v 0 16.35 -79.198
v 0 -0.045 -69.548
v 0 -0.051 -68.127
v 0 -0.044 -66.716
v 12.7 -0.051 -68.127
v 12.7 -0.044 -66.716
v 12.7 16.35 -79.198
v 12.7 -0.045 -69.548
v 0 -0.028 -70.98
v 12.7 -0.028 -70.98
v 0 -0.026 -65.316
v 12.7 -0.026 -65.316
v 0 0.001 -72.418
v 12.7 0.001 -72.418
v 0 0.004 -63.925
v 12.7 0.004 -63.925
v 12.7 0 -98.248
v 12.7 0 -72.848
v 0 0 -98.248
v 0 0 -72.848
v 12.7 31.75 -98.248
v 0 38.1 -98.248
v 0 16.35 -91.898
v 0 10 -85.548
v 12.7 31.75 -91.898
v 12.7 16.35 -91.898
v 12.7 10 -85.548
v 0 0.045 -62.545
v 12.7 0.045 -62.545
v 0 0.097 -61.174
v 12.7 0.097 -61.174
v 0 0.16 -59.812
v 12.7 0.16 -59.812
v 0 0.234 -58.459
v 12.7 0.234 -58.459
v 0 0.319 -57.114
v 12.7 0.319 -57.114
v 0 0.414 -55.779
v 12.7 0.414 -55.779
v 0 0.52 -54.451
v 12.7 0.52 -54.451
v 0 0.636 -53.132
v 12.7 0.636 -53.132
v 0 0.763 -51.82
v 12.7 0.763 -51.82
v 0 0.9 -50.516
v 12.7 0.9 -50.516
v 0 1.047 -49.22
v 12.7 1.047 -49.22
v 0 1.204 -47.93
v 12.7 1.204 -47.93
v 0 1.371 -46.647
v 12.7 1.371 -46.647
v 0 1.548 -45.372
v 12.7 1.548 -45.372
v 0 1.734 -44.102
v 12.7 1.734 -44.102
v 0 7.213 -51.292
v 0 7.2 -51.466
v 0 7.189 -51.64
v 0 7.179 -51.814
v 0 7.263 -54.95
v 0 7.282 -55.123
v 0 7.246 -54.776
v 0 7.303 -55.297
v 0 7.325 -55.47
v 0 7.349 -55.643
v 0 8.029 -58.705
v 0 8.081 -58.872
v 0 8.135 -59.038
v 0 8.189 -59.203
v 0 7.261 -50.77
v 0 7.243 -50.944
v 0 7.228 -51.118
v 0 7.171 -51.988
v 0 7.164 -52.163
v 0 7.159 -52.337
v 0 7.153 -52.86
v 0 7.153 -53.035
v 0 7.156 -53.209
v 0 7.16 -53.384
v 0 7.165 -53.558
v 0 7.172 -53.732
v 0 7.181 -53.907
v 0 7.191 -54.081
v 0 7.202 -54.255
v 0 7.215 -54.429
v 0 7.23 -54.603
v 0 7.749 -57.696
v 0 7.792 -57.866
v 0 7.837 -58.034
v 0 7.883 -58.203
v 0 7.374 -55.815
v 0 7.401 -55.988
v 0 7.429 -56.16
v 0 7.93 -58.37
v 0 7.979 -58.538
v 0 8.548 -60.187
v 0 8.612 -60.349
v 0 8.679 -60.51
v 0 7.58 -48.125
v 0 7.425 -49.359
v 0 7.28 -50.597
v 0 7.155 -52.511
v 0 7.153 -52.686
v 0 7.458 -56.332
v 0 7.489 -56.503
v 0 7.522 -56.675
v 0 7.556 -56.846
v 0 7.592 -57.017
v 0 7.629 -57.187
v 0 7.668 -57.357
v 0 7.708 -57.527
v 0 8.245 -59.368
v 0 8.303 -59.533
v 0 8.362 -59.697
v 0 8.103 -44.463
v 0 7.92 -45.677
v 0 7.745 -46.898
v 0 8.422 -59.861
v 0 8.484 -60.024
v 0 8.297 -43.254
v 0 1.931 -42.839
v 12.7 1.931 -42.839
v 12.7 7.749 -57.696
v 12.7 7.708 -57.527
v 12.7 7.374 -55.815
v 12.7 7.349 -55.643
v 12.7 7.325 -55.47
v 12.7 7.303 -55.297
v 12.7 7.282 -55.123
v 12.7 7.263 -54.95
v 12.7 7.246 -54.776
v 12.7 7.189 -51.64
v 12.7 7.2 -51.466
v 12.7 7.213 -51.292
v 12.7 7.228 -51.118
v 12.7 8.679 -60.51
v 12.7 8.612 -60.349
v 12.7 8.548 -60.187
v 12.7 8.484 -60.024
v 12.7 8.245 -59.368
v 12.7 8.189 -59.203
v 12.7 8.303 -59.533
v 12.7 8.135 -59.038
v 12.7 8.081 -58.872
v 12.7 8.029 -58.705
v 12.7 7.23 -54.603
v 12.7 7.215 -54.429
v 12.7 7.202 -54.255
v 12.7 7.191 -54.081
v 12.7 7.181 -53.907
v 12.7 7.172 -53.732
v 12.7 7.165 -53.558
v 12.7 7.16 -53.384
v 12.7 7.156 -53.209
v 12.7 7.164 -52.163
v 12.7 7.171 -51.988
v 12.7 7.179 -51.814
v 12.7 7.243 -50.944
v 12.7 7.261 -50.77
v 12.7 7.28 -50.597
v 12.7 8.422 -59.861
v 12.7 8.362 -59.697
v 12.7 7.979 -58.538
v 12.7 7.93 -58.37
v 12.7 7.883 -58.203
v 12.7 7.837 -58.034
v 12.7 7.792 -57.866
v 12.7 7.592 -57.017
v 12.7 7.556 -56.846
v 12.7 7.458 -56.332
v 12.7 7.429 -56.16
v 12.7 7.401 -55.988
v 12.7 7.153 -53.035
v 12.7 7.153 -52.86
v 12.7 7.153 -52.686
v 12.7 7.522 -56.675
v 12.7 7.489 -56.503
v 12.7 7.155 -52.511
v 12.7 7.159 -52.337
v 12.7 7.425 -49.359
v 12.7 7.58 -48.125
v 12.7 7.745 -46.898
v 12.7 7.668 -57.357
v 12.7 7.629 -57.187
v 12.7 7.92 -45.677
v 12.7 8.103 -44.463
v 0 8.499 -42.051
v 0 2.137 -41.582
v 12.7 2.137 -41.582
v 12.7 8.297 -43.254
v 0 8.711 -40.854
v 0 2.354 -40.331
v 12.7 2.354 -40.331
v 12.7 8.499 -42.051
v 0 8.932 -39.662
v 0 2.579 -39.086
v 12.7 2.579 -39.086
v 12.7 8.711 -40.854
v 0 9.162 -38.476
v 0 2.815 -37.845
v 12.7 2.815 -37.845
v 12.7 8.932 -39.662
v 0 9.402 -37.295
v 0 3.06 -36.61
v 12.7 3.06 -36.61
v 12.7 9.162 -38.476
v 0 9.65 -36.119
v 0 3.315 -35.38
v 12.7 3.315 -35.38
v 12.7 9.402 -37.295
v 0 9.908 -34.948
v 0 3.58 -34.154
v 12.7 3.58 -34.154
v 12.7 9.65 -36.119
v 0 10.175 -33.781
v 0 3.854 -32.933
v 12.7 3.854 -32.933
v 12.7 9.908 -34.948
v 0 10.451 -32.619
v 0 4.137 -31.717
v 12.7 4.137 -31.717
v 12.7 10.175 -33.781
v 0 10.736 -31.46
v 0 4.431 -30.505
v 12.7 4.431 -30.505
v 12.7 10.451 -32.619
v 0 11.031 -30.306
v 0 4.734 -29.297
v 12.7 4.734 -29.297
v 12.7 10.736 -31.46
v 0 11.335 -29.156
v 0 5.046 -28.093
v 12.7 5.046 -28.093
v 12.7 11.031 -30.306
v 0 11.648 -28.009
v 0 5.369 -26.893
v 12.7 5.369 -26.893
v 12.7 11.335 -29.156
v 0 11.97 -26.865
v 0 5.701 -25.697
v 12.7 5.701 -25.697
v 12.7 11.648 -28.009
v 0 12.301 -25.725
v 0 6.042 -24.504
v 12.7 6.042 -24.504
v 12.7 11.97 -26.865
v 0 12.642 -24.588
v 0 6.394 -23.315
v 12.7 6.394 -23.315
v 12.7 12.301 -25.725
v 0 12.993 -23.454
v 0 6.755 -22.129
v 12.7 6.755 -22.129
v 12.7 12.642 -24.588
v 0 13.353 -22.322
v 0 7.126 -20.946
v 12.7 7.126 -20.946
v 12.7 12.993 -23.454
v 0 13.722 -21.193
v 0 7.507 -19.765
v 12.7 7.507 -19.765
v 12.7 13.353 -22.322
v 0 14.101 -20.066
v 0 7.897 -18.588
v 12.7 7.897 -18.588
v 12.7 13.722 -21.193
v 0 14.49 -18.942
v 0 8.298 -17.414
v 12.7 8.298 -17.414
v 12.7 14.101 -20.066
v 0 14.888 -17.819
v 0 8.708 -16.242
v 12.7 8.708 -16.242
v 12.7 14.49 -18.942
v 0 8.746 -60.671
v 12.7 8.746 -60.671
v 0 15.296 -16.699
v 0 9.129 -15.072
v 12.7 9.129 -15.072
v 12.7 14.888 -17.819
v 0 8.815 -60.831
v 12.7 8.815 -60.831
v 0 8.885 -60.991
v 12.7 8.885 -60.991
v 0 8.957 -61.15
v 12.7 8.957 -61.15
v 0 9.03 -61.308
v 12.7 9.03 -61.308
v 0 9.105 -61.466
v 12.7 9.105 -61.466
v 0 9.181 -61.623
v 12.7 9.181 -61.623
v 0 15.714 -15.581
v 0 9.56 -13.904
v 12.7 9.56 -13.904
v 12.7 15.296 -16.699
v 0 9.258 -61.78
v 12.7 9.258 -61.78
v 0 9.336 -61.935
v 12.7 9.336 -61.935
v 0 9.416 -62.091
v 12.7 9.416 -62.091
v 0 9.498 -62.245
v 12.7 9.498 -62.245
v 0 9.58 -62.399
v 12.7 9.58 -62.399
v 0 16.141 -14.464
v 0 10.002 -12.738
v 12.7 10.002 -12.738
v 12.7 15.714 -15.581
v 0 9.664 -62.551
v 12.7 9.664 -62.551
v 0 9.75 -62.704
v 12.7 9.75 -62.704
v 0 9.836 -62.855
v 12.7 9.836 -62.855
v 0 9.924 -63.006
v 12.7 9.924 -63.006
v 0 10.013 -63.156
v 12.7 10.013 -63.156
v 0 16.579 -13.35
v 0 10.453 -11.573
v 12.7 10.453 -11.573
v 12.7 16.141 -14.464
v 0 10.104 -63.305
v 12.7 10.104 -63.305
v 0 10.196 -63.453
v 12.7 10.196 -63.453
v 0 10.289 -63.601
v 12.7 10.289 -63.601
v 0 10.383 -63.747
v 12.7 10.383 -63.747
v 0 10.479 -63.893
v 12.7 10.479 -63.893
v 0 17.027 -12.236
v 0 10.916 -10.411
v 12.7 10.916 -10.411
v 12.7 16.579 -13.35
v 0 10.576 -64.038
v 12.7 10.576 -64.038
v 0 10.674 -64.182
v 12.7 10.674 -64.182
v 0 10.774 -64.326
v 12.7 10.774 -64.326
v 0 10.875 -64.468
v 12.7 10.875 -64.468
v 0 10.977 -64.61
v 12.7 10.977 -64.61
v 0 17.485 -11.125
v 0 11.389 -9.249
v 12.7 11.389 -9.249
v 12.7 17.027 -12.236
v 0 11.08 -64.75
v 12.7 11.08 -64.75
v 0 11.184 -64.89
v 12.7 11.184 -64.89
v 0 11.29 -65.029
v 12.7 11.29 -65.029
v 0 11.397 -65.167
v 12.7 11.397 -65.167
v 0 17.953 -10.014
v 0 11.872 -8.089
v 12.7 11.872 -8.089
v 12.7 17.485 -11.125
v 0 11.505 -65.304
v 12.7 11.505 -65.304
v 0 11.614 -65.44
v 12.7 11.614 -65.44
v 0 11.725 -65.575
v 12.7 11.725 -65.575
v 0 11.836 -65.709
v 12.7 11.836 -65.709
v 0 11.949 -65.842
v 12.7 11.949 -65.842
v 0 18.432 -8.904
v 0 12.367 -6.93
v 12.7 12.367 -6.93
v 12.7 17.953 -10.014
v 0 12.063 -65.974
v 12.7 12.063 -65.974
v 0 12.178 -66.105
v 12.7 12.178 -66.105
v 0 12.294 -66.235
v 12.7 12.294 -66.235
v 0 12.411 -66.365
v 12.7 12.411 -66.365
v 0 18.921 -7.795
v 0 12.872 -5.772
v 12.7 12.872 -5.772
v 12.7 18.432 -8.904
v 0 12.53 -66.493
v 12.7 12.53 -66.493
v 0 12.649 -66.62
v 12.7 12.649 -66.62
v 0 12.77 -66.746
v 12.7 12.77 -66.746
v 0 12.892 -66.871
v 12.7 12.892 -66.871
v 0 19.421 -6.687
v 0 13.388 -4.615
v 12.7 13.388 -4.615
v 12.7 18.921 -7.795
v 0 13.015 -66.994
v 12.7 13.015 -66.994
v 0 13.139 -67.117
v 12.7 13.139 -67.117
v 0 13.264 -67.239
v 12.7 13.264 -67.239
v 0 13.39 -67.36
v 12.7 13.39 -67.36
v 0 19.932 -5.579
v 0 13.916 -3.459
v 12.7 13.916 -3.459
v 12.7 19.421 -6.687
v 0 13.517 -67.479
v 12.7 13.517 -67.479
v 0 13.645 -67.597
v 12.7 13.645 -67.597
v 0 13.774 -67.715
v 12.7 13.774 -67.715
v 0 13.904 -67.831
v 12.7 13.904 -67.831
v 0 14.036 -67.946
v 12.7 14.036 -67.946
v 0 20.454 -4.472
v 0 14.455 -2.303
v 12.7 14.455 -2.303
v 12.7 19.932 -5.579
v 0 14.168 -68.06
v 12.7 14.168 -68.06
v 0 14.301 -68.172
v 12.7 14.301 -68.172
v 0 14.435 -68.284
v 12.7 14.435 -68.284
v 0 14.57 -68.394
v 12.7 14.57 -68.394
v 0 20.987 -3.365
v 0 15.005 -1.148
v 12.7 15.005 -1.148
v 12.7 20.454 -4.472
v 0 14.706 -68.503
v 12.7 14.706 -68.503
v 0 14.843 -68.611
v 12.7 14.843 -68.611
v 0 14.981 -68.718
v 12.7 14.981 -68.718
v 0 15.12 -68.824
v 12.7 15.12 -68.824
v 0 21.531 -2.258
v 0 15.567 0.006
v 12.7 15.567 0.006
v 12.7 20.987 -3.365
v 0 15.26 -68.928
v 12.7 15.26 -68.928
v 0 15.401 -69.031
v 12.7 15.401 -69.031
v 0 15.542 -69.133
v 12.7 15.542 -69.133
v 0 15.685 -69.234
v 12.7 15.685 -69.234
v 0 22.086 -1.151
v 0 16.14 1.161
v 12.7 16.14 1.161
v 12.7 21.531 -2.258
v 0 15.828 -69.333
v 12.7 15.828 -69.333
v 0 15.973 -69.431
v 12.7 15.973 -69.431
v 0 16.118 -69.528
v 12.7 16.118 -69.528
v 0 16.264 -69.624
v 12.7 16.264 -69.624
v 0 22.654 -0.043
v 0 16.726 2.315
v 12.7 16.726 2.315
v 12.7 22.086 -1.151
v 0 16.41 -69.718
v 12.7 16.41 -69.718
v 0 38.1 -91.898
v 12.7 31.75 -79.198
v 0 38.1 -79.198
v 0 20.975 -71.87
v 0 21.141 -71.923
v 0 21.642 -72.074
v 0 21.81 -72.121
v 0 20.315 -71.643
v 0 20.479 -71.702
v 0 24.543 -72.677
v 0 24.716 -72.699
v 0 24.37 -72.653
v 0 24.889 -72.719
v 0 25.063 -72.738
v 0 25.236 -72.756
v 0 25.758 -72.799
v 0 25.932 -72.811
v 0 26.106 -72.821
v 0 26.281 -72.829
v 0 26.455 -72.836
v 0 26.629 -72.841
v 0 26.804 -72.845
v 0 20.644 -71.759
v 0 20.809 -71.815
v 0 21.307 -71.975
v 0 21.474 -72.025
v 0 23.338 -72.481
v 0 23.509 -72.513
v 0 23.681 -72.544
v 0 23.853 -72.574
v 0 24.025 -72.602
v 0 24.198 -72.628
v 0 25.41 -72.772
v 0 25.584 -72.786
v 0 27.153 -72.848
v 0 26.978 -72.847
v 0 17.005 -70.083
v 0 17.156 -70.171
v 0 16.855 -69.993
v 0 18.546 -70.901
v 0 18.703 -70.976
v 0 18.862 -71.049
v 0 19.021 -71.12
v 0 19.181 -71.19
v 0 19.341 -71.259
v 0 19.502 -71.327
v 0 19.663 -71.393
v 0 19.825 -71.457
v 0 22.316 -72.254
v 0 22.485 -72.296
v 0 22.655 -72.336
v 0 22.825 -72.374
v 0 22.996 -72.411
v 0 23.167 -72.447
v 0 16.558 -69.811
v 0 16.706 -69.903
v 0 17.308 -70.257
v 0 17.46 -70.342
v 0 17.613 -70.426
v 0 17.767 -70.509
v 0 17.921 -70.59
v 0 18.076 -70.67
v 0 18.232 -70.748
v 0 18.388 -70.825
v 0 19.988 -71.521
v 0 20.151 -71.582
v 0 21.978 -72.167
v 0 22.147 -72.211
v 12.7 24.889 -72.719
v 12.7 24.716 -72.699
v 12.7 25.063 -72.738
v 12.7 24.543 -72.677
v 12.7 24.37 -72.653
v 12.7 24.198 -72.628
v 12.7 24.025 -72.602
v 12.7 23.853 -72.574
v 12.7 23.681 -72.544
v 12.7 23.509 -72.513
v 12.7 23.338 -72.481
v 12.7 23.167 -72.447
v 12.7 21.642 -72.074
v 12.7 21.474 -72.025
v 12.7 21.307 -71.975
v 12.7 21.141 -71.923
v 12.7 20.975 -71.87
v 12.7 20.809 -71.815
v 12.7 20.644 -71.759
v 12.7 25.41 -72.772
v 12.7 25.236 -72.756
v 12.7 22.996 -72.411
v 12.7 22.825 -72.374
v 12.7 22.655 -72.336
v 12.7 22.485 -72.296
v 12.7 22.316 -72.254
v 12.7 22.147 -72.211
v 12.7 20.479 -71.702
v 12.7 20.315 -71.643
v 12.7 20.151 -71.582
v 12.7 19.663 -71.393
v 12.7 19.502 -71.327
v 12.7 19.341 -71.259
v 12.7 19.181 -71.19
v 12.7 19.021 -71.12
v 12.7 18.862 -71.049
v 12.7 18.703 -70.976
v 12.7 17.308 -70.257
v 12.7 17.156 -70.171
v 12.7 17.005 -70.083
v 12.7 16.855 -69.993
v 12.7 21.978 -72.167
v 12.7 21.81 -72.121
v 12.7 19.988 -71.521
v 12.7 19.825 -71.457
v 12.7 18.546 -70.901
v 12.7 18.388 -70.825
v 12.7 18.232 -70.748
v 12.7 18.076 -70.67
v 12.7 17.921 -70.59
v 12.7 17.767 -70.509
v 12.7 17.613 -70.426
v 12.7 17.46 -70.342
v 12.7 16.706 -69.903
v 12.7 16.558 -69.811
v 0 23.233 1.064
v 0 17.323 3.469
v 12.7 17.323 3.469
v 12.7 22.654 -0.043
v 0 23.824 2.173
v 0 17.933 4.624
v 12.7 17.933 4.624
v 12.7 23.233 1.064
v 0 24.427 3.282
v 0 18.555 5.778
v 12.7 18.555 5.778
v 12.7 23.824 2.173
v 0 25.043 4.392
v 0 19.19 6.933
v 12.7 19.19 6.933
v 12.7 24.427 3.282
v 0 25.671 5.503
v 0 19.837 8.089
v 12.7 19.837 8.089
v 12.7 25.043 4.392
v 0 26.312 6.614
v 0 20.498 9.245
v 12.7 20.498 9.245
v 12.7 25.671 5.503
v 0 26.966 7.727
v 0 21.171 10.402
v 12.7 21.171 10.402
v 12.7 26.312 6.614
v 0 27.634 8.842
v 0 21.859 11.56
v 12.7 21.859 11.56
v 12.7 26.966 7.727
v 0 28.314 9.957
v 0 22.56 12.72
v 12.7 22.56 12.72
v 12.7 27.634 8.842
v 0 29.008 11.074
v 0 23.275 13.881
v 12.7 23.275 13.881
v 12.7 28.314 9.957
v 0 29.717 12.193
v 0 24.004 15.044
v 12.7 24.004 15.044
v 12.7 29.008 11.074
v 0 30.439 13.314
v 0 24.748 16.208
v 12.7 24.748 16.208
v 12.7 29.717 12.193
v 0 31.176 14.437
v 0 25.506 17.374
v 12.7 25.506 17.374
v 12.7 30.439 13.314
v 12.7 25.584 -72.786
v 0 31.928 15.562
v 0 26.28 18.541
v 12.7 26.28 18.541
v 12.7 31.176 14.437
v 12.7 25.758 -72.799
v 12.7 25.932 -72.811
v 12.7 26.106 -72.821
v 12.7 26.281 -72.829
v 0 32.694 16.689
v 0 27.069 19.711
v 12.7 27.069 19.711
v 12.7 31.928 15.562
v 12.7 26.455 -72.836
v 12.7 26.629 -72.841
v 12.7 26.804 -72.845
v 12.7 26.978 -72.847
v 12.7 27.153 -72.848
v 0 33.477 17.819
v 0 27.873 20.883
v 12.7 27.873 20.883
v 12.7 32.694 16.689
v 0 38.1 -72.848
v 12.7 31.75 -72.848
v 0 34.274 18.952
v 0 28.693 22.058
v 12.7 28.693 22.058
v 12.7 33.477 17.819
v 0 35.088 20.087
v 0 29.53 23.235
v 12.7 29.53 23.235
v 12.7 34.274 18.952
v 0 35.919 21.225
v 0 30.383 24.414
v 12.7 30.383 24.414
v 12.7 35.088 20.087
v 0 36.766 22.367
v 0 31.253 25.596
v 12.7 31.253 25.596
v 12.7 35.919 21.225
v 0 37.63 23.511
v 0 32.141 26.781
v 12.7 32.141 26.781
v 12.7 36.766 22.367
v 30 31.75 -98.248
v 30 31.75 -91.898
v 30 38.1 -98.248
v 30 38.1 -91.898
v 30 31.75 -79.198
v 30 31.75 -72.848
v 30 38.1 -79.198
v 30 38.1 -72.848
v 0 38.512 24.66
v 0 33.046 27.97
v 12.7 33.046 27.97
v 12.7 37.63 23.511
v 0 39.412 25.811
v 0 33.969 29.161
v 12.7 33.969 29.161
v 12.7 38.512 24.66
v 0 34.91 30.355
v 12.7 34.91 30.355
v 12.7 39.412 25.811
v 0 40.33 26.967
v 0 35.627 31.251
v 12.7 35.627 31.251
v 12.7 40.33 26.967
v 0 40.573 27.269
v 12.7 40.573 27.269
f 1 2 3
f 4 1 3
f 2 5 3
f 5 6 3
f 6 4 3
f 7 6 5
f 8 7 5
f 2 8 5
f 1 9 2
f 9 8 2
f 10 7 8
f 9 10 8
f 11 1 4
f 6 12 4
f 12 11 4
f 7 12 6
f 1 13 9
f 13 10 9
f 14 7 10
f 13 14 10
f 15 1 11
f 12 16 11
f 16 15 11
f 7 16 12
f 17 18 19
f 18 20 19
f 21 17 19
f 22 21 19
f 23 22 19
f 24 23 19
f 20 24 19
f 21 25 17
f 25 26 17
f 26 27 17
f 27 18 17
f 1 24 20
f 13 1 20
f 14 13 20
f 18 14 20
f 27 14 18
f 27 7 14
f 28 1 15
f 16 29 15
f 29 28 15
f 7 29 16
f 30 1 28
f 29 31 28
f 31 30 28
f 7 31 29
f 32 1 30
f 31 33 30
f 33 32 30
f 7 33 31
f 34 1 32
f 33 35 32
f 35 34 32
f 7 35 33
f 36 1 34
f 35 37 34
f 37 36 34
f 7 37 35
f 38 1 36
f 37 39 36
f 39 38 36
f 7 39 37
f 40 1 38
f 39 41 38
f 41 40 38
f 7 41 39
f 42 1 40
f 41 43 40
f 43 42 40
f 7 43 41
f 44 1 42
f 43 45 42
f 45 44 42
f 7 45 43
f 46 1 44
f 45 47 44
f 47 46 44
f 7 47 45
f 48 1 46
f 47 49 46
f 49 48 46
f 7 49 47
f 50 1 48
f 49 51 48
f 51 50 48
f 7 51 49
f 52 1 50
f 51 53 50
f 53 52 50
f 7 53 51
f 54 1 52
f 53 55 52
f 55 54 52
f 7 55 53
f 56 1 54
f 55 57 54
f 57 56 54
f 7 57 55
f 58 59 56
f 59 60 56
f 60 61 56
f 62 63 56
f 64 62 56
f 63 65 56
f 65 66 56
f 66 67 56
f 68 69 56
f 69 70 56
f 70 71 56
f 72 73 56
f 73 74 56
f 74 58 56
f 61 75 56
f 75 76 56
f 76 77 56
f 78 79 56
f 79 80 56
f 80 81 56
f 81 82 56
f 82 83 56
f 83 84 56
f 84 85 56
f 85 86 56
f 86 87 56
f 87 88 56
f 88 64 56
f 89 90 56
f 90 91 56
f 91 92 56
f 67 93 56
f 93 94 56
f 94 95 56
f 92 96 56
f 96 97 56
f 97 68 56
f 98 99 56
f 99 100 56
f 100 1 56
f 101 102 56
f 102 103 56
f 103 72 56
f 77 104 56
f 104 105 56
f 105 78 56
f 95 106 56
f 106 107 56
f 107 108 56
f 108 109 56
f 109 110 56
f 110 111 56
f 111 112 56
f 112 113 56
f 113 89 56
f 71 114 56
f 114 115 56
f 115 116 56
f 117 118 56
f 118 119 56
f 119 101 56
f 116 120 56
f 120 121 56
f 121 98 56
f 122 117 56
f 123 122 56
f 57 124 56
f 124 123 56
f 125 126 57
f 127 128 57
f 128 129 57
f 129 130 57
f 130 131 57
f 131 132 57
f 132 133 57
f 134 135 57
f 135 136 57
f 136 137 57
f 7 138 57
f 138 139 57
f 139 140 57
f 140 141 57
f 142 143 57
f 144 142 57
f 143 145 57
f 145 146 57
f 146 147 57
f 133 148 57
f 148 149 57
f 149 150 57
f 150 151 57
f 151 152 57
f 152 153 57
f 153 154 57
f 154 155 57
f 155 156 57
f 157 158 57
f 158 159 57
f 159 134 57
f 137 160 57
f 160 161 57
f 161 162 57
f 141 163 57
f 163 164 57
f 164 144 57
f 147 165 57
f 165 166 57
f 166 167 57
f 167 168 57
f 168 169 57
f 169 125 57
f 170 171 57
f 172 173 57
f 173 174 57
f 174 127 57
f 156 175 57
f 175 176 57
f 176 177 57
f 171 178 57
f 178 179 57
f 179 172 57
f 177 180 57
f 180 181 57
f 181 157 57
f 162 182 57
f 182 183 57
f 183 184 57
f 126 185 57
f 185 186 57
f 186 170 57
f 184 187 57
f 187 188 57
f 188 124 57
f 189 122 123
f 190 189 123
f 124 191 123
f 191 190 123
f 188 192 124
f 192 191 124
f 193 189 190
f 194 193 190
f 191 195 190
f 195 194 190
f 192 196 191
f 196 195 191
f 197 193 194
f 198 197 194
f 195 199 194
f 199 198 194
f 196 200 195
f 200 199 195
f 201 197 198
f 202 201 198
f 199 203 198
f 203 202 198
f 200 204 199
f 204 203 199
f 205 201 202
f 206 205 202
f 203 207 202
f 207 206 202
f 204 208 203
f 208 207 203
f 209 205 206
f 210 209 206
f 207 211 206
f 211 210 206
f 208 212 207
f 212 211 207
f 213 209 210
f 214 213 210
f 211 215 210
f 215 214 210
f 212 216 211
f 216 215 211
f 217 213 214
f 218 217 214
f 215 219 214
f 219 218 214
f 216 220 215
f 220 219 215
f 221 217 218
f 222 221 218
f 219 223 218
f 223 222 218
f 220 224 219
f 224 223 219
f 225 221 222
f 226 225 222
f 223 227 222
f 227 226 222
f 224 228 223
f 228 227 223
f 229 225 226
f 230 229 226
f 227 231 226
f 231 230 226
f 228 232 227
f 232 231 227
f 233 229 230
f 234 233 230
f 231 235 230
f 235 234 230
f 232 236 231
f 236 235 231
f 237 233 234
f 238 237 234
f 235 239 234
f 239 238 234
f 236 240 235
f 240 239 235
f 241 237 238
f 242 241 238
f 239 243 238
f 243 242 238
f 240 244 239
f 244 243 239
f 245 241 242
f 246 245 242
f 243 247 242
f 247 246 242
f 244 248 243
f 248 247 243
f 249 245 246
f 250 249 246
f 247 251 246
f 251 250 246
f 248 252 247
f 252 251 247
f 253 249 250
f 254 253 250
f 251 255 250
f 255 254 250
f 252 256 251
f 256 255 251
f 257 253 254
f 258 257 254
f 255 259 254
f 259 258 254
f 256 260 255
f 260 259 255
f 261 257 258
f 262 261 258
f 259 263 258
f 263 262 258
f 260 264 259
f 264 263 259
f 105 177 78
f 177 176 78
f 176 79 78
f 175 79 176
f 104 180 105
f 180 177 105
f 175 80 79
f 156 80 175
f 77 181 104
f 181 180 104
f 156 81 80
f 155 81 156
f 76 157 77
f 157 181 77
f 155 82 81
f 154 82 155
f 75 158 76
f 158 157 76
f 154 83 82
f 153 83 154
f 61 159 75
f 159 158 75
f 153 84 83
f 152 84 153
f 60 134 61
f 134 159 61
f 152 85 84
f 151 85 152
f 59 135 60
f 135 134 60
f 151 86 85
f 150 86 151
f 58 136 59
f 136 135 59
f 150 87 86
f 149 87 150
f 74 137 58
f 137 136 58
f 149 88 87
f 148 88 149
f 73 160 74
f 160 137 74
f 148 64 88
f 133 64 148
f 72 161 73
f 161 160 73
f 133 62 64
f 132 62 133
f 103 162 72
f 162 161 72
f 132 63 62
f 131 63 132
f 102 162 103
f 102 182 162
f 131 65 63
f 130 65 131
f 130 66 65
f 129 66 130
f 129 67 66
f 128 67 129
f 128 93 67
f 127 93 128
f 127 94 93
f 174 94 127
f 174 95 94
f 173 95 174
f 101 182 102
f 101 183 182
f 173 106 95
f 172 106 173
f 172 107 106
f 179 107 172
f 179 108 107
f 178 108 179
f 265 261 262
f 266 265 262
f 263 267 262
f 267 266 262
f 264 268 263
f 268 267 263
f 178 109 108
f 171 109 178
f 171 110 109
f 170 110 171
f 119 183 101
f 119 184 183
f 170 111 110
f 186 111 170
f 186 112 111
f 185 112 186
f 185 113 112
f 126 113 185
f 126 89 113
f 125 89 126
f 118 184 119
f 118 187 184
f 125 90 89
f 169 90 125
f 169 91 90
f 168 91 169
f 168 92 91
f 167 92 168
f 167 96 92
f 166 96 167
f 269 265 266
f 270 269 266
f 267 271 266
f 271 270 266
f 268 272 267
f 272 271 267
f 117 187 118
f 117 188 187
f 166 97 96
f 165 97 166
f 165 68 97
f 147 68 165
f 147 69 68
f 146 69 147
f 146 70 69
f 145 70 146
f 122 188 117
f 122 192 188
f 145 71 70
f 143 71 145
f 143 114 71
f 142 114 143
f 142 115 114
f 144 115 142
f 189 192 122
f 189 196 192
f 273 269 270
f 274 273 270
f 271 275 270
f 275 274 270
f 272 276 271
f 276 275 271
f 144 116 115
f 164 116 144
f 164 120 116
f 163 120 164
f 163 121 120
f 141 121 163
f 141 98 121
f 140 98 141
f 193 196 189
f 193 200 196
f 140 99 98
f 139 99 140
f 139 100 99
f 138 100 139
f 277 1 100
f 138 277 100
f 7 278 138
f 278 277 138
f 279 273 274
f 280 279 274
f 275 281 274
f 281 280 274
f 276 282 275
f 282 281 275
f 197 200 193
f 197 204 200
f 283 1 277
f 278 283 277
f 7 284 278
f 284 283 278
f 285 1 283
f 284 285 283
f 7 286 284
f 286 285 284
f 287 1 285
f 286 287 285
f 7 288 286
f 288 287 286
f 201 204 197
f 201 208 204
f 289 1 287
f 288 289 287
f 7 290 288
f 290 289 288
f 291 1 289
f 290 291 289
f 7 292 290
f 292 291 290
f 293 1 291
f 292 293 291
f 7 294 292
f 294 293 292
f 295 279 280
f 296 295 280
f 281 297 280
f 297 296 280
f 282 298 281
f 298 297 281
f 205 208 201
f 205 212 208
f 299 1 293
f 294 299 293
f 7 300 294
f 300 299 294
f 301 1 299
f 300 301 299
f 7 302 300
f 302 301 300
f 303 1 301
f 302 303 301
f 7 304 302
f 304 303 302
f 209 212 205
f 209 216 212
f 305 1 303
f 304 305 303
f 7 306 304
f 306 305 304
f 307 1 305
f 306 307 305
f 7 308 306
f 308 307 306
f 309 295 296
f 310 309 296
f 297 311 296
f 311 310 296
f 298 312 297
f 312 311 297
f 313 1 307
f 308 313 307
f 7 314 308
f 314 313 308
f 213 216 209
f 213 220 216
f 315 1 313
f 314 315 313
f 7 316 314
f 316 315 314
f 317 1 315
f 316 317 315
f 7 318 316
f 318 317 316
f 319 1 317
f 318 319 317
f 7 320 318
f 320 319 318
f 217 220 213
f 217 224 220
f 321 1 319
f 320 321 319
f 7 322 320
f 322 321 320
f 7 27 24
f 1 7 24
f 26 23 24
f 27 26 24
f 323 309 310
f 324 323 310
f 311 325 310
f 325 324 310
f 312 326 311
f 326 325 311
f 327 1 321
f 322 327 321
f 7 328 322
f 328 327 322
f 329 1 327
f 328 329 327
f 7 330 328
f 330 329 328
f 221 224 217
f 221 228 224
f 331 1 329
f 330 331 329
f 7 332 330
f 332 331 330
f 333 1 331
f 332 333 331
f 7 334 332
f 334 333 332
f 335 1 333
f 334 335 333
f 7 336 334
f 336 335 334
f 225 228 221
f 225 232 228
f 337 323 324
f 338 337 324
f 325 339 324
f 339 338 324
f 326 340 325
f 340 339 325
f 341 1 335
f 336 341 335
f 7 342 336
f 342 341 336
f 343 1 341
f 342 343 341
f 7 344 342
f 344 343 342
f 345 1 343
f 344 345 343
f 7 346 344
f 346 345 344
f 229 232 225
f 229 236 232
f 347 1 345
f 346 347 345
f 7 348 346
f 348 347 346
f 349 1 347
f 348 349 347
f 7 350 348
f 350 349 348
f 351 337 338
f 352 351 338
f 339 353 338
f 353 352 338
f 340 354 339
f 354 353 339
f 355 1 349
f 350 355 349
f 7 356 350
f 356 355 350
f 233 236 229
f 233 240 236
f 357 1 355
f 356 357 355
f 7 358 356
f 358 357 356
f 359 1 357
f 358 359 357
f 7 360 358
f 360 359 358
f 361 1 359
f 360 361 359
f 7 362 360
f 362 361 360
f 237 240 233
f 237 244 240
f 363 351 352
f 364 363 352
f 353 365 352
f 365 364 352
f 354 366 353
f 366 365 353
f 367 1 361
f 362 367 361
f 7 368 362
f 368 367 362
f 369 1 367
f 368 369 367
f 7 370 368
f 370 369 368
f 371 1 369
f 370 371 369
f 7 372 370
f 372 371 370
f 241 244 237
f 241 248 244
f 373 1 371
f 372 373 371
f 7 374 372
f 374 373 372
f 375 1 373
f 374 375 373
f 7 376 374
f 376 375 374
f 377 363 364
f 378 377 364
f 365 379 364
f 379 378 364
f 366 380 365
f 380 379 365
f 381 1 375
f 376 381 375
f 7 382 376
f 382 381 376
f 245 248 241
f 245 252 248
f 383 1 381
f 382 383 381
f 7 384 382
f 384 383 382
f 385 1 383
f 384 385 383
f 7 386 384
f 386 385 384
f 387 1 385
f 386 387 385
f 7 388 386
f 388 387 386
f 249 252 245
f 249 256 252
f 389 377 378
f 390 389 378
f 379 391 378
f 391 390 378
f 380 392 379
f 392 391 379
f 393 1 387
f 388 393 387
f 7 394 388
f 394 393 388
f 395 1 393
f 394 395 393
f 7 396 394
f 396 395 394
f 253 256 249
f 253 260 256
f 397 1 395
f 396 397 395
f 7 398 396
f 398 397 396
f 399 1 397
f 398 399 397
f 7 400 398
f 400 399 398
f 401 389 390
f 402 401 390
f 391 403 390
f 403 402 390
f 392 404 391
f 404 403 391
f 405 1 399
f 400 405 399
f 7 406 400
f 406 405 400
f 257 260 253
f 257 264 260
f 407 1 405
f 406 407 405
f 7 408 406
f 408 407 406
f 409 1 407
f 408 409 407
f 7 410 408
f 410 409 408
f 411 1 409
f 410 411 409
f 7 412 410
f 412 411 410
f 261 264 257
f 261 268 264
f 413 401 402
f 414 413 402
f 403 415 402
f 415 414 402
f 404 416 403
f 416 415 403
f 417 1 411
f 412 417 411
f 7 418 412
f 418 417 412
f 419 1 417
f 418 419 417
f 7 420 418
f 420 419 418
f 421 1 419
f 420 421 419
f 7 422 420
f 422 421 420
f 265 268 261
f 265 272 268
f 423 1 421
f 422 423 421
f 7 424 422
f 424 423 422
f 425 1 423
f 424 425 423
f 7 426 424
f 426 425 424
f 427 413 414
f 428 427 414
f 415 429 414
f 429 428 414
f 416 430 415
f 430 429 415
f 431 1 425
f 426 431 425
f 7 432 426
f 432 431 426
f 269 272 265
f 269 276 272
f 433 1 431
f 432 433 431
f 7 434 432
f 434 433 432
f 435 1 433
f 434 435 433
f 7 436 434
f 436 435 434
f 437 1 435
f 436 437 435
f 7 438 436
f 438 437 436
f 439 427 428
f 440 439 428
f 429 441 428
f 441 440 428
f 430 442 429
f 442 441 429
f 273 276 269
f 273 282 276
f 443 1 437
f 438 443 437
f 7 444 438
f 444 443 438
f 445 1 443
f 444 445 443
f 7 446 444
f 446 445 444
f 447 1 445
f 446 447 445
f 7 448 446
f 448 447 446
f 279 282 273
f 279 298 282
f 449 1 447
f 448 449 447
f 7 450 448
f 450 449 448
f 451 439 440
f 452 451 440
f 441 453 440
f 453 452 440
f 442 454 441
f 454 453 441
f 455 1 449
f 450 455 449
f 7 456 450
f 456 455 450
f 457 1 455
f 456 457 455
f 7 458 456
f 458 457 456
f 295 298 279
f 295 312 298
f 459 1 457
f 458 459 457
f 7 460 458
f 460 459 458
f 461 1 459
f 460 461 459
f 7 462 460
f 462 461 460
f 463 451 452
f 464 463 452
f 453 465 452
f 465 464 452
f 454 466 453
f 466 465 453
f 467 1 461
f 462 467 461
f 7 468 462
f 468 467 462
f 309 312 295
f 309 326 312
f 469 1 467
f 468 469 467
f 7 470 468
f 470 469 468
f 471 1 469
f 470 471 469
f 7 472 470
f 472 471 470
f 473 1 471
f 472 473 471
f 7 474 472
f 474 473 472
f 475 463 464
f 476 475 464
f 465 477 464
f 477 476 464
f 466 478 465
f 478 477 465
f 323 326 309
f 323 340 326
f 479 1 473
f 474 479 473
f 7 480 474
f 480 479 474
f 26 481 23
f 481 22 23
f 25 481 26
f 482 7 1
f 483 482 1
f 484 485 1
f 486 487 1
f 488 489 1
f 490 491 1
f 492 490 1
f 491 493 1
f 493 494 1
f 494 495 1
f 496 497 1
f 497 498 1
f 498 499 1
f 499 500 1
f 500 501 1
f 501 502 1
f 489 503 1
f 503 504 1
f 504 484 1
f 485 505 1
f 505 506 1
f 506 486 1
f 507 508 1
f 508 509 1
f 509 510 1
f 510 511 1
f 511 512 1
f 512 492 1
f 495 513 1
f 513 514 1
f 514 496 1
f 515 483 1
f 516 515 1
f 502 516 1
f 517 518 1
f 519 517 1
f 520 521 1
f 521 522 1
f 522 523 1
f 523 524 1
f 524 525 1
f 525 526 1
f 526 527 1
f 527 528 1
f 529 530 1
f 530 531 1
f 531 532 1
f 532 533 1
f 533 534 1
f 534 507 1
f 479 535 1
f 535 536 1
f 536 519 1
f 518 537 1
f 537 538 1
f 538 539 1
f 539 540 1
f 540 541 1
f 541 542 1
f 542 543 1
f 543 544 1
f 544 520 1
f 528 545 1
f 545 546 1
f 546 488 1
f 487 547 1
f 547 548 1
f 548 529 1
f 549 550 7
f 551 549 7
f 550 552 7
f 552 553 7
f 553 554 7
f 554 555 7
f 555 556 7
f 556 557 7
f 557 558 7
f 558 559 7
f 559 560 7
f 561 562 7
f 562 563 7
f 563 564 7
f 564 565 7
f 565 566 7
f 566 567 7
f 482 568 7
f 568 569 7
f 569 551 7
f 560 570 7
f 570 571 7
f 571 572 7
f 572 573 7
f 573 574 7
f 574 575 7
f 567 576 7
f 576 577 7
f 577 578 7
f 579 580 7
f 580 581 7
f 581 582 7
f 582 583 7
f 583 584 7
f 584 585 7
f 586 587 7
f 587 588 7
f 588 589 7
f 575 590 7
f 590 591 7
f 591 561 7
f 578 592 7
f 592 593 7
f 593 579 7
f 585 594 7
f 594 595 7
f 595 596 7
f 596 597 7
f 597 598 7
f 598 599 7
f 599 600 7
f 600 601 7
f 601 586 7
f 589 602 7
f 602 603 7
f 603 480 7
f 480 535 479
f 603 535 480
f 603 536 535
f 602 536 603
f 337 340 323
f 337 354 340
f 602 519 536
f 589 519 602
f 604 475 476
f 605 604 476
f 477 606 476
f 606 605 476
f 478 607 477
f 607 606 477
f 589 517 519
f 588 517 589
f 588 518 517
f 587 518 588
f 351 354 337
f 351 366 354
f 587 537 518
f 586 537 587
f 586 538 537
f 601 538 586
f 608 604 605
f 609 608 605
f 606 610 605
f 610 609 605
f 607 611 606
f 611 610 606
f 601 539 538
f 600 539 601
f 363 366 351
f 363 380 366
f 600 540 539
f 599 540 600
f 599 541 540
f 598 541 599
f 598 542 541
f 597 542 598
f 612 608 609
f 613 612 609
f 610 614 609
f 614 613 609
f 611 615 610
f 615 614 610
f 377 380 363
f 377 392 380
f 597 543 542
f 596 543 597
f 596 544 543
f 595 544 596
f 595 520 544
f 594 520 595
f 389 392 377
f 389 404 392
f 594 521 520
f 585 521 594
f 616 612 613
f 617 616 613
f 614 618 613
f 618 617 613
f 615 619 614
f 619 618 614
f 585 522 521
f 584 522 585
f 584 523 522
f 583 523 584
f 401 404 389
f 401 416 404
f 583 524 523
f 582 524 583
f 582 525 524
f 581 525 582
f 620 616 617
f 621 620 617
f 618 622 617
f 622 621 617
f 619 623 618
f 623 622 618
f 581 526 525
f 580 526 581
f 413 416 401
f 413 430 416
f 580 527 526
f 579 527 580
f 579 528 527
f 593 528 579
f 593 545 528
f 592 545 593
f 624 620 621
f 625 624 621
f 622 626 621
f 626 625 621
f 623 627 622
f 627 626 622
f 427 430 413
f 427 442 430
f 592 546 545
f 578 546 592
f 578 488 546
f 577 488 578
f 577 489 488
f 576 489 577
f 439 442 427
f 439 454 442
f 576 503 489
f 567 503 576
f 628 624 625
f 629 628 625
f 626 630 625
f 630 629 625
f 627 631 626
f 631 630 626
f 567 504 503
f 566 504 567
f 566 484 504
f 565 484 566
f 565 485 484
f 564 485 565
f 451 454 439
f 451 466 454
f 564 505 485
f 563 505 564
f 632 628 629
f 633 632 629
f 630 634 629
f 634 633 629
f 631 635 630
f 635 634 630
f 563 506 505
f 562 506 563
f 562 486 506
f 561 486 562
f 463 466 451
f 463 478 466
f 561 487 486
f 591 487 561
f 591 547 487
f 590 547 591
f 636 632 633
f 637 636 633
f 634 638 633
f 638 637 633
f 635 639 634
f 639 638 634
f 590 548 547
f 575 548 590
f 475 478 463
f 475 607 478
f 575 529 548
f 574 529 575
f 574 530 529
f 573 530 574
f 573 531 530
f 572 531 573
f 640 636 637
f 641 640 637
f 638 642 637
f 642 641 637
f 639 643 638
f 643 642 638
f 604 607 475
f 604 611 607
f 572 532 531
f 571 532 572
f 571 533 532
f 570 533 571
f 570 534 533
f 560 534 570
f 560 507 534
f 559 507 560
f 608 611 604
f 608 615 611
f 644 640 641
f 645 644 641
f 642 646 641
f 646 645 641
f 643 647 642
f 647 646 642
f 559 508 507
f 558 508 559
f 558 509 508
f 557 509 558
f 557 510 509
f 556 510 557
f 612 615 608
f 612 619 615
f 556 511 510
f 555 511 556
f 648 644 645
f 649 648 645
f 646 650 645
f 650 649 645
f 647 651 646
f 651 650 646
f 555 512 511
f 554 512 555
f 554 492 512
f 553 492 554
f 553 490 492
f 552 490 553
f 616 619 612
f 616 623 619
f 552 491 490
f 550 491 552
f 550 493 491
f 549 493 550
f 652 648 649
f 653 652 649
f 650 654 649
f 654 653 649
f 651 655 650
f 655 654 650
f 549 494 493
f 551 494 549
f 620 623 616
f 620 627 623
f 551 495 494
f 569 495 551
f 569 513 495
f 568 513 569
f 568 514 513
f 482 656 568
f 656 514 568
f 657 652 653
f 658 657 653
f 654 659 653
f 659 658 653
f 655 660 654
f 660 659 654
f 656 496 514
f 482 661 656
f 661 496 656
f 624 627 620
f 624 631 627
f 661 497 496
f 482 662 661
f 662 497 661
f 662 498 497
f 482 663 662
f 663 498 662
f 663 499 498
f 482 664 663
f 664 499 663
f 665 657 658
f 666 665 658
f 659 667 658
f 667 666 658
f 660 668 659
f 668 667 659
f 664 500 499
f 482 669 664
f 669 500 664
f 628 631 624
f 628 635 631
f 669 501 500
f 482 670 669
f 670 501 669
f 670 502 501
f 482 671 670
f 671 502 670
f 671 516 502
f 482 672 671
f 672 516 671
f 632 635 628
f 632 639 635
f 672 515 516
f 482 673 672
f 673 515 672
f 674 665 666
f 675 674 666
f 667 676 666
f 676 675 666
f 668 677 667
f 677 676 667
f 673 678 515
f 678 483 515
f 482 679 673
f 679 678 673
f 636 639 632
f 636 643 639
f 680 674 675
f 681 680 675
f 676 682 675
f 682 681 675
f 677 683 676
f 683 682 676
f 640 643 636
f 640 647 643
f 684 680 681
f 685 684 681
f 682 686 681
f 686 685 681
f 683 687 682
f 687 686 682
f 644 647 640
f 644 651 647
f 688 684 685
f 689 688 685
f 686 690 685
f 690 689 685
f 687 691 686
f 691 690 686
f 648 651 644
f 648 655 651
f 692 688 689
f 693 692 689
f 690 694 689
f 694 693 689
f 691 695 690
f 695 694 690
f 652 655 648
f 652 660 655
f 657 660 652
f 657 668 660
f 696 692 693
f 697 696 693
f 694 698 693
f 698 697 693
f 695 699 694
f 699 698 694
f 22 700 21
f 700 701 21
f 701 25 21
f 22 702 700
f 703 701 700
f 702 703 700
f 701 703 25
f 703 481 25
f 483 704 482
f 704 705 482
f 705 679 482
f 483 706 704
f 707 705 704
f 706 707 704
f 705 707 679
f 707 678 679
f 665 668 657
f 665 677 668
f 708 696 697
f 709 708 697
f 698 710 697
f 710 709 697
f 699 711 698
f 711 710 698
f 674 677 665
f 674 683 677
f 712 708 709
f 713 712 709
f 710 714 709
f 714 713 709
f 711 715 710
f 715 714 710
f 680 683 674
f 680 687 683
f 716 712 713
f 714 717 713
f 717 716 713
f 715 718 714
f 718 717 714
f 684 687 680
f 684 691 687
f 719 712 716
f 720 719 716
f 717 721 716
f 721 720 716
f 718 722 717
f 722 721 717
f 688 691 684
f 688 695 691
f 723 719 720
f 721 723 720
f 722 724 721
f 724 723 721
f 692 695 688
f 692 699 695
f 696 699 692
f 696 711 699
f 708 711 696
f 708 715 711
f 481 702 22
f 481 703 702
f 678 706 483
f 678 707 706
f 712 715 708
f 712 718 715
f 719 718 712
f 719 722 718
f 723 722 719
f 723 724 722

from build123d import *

# Parameters (mm, degrees)
BOSS_EXTRUDE1_DEPTH = 12.7
EXTRUDE_THIN1_START = -6.35
EXTRUDE_THIN1_DEPTH = 12.7
BOSS_EXTRUDE2_DEPTH = 12.7
SKETCH4_W           = 6.35
SKETCH4_H           = 6.35
BOSS_EXTRUDE3_DEPTH = 17.3
FILLET1_R           = 20
CHAMFER1_SIZE       = 10


# Read off the part's stored shape, not the designer's step: Extrude-Thin1
with BuildPart() as part:
    # Sketch1 → Boss-Extrude1 (new body)
    with BuildSketch(Plane(origin=(0, 0, 0), x_dir=(0, 0, -1), z_dir=(1, 0, 0))):
        Polygon((72.847962895, 3.175), (72.847962895, 0), (98.247962895, 0), (98.247962895, 38.1), (91.897962895, 38.1), (91.897962895, 6.35), (79.197962895, 6.35), (79.197962895, 38.1), (72.847962895, 38.1), align=None)
    extrude(amount=BOSS_EXTRUDE1_DEPTH)



with BuildPart() as body_2:
    # Extrude-Thin1 outline → Extrude-Thin1 (new body)
    with BuildSketch(Plane(origin=(6.35, 0, 0), x_dir=(0, 0, -1), z_dir=(1, 0, 0)).offset(EXTRUDE_THIN1_START)):
        with BuildLine():
            Line((72.417611424, 0.000950446), (72.262248261, 6.349049554))
            add(Edge.make_bspline(
                [(72.262248261, 6.349049554), (63.021883212, 6.122901173), (54.028914036, 6.667445615), (36.522694485, 9.291097632), (28.009187017, 11.370086401), (11.442378767, 17.064926737), (3.388803369, 20.680920683), (-12.273002956, 29.461644656), (-19.881272632, 34.626626552), (-27.26926203, 40.573319228)],
                knots=[0, 0, 0, 0, 0.25, 0.25, 0.5, 0.5, 0.75, 0.75, 1, 1, 1, 1], degree=3))
            Line((-27.26926203, 40.573319228), (-31.250878284, 35.626680772))
            add(Edge.make_bspline(
                [(72.417611424, 0.000950446), (62.82712633, -0.233766762), (53.463624565, 0.331247938), (35.205660639, 3.067563666), (26.31145557, 5.238983498), (9.011597154, 11.185809829), (0.606218421, 14.961073948), (-15.70112511, 24.103715563), (-23.603051159, 29.470841193), (-31.250878284, 35.626680772)],
                knots=[0, 0, 0, 0, 0.25, 0.25, 0.5, 0.5, 0.75, 0.75, 1, 1, 1, 1], degree=3))
        make_face()
    extrude(amount=EXTRUDE_THIN1_DEPTH)


with BuildPart() as part_1:
    add(part.part)

    add(body_2.part)  # Boss-Extrude2 merges body 2
    # Sketch3 → Boss-Extrude2 (add)
    with BuildSketch(Plane(origin=(12.7, 0, 0), x_dir=(0, 0, -1), z_dir=(1, 0, 0))):
        Polygon((72.262248261, 6.349049554), (72.847962895, 6.349049554), (72.847962895, 0), (72.417611424, 0.000950446), align=None)
    extrude(amount=-BOSS_EXTRUDE2_DEPTH)

    # Sketch4 → Boss-Extrude3 (add)
    with BuildSketch(Plane(origin=(12.7, 0, 0), x_dir=(0, 0, -1), z_dir=(1, 0, 0))):
        with Locations((76.022962895, 34.925)):
            Rectangle(SKETCH4_W, SKETCH4_H)
        with Locations((95.072962895, 34.925)):
            Rectangle(SKETCH4_W, SKETCH4_H)
    extrude(amount=BOSS_EXTRUDE3_DEPTH)

    # Fillet1
    fillet1_edges = [part_1.edges().sort_by_distance(p)[0] for p in [
        (6.35, 6.349049554, -72.847962895),
    ]]
    fillet(fillet1_edges, radius=FILLET1_R)

    # Chamfer1
    # the kernel refuses this chamfer: 10 mm, written as the material it adds along each edge
    with BuildSketch(Plane(origin=(0, 6.35, -91.897962895), x_dir=(0, -0.027495876610586664, 0.9996219169112968), z_dir=(1, 0, 0)), Plane(origin=(0, 6.35, -79.197962895), x_dir=(0, 0.9996219169112968, 0.027495876610586317), z_dir=(1, 0, 0))) as chamfer1_piece_1:
        Polygon((CHAMFER1_SIZE * 0.999621916911, -CHAMFER1_SIZE * 0.0274958766106), (-CHAMFER1_SIZE * 0.0274958766106, -CHAMFER1_SIZE * 0.999621916911), (0, 0), align=None)
    extrude(amount=12.7)


solid = part_1.part
